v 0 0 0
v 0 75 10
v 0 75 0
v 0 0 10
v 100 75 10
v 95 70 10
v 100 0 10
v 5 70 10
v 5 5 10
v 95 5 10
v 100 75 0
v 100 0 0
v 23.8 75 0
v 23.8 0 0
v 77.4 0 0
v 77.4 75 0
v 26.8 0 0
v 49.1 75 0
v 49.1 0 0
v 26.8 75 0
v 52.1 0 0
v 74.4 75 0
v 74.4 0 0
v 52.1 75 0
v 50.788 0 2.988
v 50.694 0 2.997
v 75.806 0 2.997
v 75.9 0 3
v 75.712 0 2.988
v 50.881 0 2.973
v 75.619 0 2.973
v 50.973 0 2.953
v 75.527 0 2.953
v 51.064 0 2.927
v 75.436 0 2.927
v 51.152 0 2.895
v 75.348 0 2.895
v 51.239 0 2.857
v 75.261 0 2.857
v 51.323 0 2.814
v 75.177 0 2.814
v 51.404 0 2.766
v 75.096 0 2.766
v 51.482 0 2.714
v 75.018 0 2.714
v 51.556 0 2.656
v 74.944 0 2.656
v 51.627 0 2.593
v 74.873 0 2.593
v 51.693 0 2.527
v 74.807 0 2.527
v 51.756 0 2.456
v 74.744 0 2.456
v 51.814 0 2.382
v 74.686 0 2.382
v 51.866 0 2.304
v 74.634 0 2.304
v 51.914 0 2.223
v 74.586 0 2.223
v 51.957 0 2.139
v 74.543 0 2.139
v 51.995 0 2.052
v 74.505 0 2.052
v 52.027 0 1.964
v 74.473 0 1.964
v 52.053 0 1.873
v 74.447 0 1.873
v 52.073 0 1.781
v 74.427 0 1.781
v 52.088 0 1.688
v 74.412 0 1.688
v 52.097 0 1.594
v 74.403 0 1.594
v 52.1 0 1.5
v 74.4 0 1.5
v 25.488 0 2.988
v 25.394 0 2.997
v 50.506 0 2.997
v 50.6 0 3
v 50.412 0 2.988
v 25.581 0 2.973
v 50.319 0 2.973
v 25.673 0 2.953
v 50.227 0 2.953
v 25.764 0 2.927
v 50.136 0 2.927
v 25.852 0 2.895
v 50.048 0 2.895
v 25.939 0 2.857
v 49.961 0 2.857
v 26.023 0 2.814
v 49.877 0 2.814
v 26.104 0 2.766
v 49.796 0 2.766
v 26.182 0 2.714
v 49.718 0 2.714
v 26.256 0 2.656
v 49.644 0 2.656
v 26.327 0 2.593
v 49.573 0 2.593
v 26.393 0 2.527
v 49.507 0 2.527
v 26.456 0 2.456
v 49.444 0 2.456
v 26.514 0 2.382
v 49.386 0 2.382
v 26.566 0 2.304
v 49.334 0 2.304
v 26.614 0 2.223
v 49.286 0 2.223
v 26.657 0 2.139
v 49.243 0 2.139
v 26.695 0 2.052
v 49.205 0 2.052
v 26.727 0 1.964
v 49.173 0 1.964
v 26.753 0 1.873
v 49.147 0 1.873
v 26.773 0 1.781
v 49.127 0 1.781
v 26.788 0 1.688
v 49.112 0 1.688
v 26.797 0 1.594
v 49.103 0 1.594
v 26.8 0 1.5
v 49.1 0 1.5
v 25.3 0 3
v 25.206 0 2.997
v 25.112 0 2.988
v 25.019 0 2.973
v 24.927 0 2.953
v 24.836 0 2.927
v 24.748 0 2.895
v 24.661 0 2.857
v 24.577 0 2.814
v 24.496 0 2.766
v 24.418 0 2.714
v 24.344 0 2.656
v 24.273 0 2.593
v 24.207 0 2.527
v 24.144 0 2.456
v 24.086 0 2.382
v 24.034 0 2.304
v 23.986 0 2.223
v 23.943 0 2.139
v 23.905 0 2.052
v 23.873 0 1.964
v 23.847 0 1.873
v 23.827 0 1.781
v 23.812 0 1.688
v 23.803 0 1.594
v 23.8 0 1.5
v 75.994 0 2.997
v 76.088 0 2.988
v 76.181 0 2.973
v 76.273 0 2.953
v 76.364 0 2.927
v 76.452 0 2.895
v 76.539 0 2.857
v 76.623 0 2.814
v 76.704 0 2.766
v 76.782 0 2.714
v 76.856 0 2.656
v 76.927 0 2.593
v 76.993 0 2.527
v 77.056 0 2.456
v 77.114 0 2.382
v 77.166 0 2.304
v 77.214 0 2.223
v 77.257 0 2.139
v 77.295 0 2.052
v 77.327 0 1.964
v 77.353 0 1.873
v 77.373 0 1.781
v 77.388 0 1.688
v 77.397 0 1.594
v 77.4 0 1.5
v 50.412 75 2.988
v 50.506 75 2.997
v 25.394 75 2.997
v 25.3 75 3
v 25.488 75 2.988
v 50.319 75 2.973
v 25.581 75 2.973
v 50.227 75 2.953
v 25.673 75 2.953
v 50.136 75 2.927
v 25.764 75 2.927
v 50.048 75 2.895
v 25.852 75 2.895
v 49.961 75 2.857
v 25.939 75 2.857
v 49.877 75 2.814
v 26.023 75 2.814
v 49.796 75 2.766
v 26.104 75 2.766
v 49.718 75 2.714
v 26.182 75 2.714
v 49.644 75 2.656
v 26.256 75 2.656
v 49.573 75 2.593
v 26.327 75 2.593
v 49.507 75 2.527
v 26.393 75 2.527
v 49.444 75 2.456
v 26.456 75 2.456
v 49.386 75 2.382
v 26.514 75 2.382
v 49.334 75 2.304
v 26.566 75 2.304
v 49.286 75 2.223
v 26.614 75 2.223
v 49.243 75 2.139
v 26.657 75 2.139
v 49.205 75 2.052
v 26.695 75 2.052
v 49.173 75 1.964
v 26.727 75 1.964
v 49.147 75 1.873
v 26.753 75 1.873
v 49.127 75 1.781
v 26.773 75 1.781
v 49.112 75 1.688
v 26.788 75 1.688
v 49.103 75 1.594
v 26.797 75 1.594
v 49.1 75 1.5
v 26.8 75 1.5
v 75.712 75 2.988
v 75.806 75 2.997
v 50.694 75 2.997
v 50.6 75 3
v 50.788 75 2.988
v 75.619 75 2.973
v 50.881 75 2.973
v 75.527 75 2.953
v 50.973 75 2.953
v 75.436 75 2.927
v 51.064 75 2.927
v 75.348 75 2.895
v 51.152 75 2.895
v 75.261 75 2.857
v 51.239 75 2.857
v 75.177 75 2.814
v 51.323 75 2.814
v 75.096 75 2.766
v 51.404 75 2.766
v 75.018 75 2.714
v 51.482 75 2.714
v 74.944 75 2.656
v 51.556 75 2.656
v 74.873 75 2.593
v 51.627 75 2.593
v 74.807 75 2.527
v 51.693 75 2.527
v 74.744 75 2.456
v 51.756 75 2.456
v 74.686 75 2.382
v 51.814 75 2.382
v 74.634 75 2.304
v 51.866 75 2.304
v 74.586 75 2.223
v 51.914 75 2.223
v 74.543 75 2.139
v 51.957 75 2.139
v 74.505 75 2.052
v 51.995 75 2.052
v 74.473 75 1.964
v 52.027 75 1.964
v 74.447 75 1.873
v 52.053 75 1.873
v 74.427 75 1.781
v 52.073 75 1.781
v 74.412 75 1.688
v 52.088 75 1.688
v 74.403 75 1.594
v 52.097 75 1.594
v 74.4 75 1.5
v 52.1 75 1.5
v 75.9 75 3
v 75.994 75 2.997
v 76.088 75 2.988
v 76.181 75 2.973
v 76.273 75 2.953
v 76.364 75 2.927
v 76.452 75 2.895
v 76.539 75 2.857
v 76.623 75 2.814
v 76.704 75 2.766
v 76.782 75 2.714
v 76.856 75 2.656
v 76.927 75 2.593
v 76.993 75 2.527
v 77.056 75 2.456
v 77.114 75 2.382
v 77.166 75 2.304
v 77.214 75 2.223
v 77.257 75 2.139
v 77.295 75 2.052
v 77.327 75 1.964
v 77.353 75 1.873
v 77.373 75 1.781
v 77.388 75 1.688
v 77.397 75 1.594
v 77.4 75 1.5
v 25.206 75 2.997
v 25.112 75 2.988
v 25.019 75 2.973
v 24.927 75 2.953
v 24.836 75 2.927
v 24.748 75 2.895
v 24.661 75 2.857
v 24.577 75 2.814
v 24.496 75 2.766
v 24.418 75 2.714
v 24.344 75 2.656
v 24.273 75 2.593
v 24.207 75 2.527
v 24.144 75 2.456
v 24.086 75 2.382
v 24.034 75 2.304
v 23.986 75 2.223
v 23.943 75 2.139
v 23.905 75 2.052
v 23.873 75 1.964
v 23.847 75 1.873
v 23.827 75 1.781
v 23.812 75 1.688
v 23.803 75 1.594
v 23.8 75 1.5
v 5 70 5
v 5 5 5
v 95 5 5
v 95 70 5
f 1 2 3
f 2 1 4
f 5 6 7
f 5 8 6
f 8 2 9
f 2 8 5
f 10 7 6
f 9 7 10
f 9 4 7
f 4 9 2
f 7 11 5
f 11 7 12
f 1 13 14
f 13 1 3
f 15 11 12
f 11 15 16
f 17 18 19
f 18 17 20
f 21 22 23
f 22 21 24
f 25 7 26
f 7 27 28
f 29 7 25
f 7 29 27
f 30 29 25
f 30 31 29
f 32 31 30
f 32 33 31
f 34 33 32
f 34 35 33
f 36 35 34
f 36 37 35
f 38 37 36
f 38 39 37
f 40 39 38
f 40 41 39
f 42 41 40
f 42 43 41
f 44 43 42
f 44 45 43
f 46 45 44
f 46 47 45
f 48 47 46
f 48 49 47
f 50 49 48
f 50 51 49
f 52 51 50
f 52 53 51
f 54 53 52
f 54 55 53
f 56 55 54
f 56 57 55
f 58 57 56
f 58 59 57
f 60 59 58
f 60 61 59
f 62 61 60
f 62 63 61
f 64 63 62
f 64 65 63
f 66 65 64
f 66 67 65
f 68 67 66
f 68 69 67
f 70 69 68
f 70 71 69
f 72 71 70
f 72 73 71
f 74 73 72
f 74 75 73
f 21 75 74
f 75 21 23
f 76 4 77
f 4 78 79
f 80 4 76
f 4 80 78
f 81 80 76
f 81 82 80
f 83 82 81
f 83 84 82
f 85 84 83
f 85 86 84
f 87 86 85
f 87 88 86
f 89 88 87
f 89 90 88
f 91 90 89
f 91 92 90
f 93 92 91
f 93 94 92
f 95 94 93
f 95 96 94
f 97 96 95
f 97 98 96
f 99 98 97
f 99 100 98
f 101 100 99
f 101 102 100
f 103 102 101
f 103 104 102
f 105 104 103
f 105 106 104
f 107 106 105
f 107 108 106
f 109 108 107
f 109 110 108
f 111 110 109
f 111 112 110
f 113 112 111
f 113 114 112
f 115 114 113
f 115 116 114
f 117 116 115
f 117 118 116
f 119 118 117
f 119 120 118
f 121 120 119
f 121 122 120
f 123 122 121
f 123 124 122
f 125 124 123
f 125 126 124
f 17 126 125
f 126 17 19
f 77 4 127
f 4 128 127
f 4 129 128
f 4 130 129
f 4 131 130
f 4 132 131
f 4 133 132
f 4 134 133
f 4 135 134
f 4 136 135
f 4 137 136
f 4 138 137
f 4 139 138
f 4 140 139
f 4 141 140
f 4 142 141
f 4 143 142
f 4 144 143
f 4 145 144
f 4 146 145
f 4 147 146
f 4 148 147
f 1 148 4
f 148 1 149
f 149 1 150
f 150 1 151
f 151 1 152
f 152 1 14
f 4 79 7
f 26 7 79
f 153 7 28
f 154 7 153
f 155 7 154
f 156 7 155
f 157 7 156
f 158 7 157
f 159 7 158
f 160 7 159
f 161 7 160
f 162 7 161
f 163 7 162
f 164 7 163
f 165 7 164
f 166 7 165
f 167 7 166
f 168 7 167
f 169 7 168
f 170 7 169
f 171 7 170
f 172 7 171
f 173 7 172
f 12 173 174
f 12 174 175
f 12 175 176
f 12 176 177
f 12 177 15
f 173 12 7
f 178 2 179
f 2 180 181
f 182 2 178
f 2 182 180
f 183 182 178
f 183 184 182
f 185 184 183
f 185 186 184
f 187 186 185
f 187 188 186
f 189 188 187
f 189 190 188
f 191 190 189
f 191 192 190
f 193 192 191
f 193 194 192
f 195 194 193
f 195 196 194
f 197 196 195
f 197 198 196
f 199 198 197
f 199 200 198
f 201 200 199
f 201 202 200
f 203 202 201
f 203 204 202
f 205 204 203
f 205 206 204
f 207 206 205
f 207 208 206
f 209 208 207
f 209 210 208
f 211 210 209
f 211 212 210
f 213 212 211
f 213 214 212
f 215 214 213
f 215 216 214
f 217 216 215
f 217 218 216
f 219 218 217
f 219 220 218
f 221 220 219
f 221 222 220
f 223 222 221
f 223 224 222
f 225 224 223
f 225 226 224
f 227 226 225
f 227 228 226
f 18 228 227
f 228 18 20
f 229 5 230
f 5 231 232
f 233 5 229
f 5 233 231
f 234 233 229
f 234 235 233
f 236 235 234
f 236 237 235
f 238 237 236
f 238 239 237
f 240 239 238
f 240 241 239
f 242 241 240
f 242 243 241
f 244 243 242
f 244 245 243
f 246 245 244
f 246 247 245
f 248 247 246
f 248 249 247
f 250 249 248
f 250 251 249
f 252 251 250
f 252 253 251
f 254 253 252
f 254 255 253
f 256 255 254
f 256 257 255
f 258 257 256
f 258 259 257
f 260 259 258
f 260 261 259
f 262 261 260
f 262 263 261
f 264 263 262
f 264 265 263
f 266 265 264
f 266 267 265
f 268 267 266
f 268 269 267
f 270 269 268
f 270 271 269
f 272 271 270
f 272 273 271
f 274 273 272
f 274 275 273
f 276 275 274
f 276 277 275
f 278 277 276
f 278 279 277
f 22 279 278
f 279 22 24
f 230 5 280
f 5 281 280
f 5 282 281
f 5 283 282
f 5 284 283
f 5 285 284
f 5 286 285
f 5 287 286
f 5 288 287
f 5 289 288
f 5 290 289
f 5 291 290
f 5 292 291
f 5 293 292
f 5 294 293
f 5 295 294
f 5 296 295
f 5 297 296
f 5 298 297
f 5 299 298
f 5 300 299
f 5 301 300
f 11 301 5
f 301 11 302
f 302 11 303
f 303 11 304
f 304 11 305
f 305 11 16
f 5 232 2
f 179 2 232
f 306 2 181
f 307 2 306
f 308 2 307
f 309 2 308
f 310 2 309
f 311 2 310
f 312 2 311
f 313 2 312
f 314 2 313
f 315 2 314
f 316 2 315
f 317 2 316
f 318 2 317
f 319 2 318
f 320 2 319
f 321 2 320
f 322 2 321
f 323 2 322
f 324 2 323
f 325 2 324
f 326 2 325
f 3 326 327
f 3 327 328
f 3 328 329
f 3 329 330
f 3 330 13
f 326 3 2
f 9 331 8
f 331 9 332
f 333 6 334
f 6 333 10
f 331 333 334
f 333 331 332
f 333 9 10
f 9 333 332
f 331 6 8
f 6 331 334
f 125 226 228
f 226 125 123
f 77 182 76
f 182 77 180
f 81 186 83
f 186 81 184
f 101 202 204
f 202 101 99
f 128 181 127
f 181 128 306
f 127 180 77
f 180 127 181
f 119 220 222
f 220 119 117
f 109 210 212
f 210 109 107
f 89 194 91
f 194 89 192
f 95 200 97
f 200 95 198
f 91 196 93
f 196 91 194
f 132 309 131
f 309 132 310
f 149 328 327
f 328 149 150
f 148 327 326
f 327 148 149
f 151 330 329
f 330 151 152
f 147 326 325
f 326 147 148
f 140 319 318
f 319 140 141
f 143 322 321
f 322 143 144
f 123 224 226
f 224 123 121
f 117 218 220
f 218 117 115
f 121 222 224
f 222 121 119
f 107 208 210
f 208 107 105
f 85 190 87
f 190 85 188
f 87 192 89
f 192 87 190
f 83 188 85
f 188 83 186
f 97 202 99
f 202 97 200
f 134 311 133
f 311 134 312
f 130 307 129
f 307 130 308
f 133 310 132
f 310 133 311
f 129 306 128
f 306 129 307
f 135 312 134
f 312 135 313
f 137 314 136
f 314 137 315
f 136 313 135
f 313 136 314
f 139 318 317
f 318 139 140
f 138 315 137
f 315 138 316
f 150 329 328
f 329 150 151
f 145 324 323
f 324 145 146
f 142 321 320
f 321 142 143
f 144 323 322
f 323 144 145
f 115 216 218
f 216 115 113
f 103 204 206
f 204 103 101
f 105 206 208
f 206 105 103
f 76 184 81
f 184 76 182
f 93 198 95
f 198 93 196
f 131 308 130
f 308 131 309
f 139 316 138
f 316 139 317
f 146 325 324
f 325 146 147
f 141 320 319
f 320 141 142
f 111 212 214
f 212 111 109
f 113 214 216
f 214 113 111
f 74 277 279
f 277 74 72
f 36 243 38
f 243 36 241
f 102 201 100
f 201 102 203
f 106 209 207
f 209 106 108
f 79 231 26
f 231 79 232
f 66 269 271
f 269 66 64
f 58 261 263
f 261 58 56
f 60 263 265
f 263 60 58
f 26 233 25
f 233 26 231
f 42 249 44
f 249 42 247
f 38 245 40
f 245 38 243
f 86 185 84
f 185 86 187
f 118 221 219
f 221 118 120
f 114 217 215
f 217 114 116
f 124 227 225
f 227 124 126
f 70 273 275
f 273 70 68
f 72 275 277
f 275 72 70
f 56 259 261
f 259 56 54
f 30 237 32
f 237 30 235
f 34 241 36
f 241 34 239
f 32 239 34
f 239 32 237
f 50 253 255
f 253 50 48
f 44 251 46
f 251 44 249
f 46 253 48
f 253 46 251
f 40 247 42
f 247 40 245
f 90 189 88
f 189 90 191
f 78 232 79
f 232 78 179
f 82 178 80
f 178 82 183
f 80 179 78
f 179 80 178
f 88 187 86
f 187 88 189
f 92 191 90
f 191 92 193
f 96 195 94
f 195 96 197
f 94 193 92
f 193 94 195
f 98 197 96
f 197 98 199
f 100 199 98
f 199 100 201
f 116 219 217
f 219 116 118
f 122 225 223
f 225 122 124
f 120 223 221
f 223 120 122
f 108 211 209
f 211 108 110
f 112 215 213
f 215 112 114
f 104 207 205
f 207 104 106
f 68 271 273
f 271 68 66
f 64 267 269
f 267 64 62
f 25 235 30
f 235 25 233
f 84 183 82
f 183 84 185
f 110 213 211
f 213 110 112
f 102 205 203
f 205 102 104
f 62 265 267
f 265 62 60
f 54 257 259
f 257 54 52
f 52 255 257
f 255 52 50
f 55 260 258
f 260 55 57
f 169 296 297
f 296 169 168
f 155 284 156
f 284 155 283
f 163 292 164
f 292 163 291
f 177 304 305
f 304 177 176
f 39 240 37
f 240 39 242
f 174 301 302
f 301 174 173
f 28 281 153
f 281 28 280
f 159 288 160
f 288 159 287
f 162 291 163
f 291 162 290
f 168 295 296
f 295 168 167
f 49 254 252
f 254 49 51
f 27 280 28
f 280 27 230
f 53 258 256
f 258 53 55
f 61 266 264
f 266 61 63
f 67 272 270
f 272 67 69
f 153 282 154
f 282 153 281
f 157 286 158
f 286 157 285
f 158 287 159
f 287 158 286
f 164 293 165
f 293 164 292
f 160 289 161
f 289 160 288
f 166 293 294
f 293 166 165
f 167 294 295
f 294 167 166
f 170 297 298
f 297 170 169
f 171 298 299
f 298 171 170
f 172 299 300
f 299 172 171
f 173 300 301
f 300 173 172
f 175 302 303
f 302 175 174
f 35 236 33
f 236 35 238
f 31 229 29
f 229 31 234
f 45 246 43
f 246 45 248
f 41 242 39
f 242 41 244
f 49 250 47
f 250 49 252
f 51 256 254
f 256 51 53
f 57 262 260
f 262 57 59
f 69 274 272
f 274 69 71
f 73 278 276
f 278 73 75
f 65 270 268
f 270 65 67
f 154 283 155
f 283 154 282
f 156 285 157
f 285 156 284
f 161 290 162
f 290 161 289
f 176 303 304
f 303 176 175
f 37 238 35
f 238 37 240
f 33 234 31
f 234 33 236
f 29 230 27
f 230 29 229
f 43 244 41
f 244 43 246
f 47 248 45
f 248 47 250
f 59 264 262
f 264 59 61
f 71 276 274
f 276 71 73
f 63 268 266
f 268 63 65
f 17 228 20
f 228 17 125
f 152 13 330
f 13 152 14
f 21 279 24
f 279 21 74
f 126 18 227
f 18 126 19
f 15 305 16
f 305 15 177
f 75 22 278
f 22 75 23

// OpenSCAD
// ----- ----- ----- Porta Sabonete ----- ----- ----- //

// ----- ----- Declaração de Variáveis ----- ----- //
$fn=100;

esp=5;

raio=1.5;

lado=25.3;

x=90;
y=65;

// ----- ----- MAIN ----- ----- //
difference(){
    difference(){
        cube([x+2*esp,y+2*esp,2*esp]);
        #translate([esp,esp,esp])cube([x,y,esp]);
    }
    #translate([1*lado,0,raio])rotate([-90,0,0])cylinder(y+2*esp,raio,raio);
    #translate([2*lado,0,raio])rotate([-90,0,0])cylinder(y+2*esp,raio,raio);
    #translate([3*lado,0,raio])rotate([-90,0,0])cylinder(y+2*esp,raio,raio);
    #translate([1*lado-raio,0,raio])rotate([-90,0,0])cube([2*raio,raio,y+2*esp]);
    #translate([2*lado-raio,0,raio])rotate([-90,0,0])cube([2*raio,raio,y+2*esp]);
    #translate([3*lado-raio,0,raio])rotate([-90,0,0])cube([2*raio,raio,y+2*esp]);
}
